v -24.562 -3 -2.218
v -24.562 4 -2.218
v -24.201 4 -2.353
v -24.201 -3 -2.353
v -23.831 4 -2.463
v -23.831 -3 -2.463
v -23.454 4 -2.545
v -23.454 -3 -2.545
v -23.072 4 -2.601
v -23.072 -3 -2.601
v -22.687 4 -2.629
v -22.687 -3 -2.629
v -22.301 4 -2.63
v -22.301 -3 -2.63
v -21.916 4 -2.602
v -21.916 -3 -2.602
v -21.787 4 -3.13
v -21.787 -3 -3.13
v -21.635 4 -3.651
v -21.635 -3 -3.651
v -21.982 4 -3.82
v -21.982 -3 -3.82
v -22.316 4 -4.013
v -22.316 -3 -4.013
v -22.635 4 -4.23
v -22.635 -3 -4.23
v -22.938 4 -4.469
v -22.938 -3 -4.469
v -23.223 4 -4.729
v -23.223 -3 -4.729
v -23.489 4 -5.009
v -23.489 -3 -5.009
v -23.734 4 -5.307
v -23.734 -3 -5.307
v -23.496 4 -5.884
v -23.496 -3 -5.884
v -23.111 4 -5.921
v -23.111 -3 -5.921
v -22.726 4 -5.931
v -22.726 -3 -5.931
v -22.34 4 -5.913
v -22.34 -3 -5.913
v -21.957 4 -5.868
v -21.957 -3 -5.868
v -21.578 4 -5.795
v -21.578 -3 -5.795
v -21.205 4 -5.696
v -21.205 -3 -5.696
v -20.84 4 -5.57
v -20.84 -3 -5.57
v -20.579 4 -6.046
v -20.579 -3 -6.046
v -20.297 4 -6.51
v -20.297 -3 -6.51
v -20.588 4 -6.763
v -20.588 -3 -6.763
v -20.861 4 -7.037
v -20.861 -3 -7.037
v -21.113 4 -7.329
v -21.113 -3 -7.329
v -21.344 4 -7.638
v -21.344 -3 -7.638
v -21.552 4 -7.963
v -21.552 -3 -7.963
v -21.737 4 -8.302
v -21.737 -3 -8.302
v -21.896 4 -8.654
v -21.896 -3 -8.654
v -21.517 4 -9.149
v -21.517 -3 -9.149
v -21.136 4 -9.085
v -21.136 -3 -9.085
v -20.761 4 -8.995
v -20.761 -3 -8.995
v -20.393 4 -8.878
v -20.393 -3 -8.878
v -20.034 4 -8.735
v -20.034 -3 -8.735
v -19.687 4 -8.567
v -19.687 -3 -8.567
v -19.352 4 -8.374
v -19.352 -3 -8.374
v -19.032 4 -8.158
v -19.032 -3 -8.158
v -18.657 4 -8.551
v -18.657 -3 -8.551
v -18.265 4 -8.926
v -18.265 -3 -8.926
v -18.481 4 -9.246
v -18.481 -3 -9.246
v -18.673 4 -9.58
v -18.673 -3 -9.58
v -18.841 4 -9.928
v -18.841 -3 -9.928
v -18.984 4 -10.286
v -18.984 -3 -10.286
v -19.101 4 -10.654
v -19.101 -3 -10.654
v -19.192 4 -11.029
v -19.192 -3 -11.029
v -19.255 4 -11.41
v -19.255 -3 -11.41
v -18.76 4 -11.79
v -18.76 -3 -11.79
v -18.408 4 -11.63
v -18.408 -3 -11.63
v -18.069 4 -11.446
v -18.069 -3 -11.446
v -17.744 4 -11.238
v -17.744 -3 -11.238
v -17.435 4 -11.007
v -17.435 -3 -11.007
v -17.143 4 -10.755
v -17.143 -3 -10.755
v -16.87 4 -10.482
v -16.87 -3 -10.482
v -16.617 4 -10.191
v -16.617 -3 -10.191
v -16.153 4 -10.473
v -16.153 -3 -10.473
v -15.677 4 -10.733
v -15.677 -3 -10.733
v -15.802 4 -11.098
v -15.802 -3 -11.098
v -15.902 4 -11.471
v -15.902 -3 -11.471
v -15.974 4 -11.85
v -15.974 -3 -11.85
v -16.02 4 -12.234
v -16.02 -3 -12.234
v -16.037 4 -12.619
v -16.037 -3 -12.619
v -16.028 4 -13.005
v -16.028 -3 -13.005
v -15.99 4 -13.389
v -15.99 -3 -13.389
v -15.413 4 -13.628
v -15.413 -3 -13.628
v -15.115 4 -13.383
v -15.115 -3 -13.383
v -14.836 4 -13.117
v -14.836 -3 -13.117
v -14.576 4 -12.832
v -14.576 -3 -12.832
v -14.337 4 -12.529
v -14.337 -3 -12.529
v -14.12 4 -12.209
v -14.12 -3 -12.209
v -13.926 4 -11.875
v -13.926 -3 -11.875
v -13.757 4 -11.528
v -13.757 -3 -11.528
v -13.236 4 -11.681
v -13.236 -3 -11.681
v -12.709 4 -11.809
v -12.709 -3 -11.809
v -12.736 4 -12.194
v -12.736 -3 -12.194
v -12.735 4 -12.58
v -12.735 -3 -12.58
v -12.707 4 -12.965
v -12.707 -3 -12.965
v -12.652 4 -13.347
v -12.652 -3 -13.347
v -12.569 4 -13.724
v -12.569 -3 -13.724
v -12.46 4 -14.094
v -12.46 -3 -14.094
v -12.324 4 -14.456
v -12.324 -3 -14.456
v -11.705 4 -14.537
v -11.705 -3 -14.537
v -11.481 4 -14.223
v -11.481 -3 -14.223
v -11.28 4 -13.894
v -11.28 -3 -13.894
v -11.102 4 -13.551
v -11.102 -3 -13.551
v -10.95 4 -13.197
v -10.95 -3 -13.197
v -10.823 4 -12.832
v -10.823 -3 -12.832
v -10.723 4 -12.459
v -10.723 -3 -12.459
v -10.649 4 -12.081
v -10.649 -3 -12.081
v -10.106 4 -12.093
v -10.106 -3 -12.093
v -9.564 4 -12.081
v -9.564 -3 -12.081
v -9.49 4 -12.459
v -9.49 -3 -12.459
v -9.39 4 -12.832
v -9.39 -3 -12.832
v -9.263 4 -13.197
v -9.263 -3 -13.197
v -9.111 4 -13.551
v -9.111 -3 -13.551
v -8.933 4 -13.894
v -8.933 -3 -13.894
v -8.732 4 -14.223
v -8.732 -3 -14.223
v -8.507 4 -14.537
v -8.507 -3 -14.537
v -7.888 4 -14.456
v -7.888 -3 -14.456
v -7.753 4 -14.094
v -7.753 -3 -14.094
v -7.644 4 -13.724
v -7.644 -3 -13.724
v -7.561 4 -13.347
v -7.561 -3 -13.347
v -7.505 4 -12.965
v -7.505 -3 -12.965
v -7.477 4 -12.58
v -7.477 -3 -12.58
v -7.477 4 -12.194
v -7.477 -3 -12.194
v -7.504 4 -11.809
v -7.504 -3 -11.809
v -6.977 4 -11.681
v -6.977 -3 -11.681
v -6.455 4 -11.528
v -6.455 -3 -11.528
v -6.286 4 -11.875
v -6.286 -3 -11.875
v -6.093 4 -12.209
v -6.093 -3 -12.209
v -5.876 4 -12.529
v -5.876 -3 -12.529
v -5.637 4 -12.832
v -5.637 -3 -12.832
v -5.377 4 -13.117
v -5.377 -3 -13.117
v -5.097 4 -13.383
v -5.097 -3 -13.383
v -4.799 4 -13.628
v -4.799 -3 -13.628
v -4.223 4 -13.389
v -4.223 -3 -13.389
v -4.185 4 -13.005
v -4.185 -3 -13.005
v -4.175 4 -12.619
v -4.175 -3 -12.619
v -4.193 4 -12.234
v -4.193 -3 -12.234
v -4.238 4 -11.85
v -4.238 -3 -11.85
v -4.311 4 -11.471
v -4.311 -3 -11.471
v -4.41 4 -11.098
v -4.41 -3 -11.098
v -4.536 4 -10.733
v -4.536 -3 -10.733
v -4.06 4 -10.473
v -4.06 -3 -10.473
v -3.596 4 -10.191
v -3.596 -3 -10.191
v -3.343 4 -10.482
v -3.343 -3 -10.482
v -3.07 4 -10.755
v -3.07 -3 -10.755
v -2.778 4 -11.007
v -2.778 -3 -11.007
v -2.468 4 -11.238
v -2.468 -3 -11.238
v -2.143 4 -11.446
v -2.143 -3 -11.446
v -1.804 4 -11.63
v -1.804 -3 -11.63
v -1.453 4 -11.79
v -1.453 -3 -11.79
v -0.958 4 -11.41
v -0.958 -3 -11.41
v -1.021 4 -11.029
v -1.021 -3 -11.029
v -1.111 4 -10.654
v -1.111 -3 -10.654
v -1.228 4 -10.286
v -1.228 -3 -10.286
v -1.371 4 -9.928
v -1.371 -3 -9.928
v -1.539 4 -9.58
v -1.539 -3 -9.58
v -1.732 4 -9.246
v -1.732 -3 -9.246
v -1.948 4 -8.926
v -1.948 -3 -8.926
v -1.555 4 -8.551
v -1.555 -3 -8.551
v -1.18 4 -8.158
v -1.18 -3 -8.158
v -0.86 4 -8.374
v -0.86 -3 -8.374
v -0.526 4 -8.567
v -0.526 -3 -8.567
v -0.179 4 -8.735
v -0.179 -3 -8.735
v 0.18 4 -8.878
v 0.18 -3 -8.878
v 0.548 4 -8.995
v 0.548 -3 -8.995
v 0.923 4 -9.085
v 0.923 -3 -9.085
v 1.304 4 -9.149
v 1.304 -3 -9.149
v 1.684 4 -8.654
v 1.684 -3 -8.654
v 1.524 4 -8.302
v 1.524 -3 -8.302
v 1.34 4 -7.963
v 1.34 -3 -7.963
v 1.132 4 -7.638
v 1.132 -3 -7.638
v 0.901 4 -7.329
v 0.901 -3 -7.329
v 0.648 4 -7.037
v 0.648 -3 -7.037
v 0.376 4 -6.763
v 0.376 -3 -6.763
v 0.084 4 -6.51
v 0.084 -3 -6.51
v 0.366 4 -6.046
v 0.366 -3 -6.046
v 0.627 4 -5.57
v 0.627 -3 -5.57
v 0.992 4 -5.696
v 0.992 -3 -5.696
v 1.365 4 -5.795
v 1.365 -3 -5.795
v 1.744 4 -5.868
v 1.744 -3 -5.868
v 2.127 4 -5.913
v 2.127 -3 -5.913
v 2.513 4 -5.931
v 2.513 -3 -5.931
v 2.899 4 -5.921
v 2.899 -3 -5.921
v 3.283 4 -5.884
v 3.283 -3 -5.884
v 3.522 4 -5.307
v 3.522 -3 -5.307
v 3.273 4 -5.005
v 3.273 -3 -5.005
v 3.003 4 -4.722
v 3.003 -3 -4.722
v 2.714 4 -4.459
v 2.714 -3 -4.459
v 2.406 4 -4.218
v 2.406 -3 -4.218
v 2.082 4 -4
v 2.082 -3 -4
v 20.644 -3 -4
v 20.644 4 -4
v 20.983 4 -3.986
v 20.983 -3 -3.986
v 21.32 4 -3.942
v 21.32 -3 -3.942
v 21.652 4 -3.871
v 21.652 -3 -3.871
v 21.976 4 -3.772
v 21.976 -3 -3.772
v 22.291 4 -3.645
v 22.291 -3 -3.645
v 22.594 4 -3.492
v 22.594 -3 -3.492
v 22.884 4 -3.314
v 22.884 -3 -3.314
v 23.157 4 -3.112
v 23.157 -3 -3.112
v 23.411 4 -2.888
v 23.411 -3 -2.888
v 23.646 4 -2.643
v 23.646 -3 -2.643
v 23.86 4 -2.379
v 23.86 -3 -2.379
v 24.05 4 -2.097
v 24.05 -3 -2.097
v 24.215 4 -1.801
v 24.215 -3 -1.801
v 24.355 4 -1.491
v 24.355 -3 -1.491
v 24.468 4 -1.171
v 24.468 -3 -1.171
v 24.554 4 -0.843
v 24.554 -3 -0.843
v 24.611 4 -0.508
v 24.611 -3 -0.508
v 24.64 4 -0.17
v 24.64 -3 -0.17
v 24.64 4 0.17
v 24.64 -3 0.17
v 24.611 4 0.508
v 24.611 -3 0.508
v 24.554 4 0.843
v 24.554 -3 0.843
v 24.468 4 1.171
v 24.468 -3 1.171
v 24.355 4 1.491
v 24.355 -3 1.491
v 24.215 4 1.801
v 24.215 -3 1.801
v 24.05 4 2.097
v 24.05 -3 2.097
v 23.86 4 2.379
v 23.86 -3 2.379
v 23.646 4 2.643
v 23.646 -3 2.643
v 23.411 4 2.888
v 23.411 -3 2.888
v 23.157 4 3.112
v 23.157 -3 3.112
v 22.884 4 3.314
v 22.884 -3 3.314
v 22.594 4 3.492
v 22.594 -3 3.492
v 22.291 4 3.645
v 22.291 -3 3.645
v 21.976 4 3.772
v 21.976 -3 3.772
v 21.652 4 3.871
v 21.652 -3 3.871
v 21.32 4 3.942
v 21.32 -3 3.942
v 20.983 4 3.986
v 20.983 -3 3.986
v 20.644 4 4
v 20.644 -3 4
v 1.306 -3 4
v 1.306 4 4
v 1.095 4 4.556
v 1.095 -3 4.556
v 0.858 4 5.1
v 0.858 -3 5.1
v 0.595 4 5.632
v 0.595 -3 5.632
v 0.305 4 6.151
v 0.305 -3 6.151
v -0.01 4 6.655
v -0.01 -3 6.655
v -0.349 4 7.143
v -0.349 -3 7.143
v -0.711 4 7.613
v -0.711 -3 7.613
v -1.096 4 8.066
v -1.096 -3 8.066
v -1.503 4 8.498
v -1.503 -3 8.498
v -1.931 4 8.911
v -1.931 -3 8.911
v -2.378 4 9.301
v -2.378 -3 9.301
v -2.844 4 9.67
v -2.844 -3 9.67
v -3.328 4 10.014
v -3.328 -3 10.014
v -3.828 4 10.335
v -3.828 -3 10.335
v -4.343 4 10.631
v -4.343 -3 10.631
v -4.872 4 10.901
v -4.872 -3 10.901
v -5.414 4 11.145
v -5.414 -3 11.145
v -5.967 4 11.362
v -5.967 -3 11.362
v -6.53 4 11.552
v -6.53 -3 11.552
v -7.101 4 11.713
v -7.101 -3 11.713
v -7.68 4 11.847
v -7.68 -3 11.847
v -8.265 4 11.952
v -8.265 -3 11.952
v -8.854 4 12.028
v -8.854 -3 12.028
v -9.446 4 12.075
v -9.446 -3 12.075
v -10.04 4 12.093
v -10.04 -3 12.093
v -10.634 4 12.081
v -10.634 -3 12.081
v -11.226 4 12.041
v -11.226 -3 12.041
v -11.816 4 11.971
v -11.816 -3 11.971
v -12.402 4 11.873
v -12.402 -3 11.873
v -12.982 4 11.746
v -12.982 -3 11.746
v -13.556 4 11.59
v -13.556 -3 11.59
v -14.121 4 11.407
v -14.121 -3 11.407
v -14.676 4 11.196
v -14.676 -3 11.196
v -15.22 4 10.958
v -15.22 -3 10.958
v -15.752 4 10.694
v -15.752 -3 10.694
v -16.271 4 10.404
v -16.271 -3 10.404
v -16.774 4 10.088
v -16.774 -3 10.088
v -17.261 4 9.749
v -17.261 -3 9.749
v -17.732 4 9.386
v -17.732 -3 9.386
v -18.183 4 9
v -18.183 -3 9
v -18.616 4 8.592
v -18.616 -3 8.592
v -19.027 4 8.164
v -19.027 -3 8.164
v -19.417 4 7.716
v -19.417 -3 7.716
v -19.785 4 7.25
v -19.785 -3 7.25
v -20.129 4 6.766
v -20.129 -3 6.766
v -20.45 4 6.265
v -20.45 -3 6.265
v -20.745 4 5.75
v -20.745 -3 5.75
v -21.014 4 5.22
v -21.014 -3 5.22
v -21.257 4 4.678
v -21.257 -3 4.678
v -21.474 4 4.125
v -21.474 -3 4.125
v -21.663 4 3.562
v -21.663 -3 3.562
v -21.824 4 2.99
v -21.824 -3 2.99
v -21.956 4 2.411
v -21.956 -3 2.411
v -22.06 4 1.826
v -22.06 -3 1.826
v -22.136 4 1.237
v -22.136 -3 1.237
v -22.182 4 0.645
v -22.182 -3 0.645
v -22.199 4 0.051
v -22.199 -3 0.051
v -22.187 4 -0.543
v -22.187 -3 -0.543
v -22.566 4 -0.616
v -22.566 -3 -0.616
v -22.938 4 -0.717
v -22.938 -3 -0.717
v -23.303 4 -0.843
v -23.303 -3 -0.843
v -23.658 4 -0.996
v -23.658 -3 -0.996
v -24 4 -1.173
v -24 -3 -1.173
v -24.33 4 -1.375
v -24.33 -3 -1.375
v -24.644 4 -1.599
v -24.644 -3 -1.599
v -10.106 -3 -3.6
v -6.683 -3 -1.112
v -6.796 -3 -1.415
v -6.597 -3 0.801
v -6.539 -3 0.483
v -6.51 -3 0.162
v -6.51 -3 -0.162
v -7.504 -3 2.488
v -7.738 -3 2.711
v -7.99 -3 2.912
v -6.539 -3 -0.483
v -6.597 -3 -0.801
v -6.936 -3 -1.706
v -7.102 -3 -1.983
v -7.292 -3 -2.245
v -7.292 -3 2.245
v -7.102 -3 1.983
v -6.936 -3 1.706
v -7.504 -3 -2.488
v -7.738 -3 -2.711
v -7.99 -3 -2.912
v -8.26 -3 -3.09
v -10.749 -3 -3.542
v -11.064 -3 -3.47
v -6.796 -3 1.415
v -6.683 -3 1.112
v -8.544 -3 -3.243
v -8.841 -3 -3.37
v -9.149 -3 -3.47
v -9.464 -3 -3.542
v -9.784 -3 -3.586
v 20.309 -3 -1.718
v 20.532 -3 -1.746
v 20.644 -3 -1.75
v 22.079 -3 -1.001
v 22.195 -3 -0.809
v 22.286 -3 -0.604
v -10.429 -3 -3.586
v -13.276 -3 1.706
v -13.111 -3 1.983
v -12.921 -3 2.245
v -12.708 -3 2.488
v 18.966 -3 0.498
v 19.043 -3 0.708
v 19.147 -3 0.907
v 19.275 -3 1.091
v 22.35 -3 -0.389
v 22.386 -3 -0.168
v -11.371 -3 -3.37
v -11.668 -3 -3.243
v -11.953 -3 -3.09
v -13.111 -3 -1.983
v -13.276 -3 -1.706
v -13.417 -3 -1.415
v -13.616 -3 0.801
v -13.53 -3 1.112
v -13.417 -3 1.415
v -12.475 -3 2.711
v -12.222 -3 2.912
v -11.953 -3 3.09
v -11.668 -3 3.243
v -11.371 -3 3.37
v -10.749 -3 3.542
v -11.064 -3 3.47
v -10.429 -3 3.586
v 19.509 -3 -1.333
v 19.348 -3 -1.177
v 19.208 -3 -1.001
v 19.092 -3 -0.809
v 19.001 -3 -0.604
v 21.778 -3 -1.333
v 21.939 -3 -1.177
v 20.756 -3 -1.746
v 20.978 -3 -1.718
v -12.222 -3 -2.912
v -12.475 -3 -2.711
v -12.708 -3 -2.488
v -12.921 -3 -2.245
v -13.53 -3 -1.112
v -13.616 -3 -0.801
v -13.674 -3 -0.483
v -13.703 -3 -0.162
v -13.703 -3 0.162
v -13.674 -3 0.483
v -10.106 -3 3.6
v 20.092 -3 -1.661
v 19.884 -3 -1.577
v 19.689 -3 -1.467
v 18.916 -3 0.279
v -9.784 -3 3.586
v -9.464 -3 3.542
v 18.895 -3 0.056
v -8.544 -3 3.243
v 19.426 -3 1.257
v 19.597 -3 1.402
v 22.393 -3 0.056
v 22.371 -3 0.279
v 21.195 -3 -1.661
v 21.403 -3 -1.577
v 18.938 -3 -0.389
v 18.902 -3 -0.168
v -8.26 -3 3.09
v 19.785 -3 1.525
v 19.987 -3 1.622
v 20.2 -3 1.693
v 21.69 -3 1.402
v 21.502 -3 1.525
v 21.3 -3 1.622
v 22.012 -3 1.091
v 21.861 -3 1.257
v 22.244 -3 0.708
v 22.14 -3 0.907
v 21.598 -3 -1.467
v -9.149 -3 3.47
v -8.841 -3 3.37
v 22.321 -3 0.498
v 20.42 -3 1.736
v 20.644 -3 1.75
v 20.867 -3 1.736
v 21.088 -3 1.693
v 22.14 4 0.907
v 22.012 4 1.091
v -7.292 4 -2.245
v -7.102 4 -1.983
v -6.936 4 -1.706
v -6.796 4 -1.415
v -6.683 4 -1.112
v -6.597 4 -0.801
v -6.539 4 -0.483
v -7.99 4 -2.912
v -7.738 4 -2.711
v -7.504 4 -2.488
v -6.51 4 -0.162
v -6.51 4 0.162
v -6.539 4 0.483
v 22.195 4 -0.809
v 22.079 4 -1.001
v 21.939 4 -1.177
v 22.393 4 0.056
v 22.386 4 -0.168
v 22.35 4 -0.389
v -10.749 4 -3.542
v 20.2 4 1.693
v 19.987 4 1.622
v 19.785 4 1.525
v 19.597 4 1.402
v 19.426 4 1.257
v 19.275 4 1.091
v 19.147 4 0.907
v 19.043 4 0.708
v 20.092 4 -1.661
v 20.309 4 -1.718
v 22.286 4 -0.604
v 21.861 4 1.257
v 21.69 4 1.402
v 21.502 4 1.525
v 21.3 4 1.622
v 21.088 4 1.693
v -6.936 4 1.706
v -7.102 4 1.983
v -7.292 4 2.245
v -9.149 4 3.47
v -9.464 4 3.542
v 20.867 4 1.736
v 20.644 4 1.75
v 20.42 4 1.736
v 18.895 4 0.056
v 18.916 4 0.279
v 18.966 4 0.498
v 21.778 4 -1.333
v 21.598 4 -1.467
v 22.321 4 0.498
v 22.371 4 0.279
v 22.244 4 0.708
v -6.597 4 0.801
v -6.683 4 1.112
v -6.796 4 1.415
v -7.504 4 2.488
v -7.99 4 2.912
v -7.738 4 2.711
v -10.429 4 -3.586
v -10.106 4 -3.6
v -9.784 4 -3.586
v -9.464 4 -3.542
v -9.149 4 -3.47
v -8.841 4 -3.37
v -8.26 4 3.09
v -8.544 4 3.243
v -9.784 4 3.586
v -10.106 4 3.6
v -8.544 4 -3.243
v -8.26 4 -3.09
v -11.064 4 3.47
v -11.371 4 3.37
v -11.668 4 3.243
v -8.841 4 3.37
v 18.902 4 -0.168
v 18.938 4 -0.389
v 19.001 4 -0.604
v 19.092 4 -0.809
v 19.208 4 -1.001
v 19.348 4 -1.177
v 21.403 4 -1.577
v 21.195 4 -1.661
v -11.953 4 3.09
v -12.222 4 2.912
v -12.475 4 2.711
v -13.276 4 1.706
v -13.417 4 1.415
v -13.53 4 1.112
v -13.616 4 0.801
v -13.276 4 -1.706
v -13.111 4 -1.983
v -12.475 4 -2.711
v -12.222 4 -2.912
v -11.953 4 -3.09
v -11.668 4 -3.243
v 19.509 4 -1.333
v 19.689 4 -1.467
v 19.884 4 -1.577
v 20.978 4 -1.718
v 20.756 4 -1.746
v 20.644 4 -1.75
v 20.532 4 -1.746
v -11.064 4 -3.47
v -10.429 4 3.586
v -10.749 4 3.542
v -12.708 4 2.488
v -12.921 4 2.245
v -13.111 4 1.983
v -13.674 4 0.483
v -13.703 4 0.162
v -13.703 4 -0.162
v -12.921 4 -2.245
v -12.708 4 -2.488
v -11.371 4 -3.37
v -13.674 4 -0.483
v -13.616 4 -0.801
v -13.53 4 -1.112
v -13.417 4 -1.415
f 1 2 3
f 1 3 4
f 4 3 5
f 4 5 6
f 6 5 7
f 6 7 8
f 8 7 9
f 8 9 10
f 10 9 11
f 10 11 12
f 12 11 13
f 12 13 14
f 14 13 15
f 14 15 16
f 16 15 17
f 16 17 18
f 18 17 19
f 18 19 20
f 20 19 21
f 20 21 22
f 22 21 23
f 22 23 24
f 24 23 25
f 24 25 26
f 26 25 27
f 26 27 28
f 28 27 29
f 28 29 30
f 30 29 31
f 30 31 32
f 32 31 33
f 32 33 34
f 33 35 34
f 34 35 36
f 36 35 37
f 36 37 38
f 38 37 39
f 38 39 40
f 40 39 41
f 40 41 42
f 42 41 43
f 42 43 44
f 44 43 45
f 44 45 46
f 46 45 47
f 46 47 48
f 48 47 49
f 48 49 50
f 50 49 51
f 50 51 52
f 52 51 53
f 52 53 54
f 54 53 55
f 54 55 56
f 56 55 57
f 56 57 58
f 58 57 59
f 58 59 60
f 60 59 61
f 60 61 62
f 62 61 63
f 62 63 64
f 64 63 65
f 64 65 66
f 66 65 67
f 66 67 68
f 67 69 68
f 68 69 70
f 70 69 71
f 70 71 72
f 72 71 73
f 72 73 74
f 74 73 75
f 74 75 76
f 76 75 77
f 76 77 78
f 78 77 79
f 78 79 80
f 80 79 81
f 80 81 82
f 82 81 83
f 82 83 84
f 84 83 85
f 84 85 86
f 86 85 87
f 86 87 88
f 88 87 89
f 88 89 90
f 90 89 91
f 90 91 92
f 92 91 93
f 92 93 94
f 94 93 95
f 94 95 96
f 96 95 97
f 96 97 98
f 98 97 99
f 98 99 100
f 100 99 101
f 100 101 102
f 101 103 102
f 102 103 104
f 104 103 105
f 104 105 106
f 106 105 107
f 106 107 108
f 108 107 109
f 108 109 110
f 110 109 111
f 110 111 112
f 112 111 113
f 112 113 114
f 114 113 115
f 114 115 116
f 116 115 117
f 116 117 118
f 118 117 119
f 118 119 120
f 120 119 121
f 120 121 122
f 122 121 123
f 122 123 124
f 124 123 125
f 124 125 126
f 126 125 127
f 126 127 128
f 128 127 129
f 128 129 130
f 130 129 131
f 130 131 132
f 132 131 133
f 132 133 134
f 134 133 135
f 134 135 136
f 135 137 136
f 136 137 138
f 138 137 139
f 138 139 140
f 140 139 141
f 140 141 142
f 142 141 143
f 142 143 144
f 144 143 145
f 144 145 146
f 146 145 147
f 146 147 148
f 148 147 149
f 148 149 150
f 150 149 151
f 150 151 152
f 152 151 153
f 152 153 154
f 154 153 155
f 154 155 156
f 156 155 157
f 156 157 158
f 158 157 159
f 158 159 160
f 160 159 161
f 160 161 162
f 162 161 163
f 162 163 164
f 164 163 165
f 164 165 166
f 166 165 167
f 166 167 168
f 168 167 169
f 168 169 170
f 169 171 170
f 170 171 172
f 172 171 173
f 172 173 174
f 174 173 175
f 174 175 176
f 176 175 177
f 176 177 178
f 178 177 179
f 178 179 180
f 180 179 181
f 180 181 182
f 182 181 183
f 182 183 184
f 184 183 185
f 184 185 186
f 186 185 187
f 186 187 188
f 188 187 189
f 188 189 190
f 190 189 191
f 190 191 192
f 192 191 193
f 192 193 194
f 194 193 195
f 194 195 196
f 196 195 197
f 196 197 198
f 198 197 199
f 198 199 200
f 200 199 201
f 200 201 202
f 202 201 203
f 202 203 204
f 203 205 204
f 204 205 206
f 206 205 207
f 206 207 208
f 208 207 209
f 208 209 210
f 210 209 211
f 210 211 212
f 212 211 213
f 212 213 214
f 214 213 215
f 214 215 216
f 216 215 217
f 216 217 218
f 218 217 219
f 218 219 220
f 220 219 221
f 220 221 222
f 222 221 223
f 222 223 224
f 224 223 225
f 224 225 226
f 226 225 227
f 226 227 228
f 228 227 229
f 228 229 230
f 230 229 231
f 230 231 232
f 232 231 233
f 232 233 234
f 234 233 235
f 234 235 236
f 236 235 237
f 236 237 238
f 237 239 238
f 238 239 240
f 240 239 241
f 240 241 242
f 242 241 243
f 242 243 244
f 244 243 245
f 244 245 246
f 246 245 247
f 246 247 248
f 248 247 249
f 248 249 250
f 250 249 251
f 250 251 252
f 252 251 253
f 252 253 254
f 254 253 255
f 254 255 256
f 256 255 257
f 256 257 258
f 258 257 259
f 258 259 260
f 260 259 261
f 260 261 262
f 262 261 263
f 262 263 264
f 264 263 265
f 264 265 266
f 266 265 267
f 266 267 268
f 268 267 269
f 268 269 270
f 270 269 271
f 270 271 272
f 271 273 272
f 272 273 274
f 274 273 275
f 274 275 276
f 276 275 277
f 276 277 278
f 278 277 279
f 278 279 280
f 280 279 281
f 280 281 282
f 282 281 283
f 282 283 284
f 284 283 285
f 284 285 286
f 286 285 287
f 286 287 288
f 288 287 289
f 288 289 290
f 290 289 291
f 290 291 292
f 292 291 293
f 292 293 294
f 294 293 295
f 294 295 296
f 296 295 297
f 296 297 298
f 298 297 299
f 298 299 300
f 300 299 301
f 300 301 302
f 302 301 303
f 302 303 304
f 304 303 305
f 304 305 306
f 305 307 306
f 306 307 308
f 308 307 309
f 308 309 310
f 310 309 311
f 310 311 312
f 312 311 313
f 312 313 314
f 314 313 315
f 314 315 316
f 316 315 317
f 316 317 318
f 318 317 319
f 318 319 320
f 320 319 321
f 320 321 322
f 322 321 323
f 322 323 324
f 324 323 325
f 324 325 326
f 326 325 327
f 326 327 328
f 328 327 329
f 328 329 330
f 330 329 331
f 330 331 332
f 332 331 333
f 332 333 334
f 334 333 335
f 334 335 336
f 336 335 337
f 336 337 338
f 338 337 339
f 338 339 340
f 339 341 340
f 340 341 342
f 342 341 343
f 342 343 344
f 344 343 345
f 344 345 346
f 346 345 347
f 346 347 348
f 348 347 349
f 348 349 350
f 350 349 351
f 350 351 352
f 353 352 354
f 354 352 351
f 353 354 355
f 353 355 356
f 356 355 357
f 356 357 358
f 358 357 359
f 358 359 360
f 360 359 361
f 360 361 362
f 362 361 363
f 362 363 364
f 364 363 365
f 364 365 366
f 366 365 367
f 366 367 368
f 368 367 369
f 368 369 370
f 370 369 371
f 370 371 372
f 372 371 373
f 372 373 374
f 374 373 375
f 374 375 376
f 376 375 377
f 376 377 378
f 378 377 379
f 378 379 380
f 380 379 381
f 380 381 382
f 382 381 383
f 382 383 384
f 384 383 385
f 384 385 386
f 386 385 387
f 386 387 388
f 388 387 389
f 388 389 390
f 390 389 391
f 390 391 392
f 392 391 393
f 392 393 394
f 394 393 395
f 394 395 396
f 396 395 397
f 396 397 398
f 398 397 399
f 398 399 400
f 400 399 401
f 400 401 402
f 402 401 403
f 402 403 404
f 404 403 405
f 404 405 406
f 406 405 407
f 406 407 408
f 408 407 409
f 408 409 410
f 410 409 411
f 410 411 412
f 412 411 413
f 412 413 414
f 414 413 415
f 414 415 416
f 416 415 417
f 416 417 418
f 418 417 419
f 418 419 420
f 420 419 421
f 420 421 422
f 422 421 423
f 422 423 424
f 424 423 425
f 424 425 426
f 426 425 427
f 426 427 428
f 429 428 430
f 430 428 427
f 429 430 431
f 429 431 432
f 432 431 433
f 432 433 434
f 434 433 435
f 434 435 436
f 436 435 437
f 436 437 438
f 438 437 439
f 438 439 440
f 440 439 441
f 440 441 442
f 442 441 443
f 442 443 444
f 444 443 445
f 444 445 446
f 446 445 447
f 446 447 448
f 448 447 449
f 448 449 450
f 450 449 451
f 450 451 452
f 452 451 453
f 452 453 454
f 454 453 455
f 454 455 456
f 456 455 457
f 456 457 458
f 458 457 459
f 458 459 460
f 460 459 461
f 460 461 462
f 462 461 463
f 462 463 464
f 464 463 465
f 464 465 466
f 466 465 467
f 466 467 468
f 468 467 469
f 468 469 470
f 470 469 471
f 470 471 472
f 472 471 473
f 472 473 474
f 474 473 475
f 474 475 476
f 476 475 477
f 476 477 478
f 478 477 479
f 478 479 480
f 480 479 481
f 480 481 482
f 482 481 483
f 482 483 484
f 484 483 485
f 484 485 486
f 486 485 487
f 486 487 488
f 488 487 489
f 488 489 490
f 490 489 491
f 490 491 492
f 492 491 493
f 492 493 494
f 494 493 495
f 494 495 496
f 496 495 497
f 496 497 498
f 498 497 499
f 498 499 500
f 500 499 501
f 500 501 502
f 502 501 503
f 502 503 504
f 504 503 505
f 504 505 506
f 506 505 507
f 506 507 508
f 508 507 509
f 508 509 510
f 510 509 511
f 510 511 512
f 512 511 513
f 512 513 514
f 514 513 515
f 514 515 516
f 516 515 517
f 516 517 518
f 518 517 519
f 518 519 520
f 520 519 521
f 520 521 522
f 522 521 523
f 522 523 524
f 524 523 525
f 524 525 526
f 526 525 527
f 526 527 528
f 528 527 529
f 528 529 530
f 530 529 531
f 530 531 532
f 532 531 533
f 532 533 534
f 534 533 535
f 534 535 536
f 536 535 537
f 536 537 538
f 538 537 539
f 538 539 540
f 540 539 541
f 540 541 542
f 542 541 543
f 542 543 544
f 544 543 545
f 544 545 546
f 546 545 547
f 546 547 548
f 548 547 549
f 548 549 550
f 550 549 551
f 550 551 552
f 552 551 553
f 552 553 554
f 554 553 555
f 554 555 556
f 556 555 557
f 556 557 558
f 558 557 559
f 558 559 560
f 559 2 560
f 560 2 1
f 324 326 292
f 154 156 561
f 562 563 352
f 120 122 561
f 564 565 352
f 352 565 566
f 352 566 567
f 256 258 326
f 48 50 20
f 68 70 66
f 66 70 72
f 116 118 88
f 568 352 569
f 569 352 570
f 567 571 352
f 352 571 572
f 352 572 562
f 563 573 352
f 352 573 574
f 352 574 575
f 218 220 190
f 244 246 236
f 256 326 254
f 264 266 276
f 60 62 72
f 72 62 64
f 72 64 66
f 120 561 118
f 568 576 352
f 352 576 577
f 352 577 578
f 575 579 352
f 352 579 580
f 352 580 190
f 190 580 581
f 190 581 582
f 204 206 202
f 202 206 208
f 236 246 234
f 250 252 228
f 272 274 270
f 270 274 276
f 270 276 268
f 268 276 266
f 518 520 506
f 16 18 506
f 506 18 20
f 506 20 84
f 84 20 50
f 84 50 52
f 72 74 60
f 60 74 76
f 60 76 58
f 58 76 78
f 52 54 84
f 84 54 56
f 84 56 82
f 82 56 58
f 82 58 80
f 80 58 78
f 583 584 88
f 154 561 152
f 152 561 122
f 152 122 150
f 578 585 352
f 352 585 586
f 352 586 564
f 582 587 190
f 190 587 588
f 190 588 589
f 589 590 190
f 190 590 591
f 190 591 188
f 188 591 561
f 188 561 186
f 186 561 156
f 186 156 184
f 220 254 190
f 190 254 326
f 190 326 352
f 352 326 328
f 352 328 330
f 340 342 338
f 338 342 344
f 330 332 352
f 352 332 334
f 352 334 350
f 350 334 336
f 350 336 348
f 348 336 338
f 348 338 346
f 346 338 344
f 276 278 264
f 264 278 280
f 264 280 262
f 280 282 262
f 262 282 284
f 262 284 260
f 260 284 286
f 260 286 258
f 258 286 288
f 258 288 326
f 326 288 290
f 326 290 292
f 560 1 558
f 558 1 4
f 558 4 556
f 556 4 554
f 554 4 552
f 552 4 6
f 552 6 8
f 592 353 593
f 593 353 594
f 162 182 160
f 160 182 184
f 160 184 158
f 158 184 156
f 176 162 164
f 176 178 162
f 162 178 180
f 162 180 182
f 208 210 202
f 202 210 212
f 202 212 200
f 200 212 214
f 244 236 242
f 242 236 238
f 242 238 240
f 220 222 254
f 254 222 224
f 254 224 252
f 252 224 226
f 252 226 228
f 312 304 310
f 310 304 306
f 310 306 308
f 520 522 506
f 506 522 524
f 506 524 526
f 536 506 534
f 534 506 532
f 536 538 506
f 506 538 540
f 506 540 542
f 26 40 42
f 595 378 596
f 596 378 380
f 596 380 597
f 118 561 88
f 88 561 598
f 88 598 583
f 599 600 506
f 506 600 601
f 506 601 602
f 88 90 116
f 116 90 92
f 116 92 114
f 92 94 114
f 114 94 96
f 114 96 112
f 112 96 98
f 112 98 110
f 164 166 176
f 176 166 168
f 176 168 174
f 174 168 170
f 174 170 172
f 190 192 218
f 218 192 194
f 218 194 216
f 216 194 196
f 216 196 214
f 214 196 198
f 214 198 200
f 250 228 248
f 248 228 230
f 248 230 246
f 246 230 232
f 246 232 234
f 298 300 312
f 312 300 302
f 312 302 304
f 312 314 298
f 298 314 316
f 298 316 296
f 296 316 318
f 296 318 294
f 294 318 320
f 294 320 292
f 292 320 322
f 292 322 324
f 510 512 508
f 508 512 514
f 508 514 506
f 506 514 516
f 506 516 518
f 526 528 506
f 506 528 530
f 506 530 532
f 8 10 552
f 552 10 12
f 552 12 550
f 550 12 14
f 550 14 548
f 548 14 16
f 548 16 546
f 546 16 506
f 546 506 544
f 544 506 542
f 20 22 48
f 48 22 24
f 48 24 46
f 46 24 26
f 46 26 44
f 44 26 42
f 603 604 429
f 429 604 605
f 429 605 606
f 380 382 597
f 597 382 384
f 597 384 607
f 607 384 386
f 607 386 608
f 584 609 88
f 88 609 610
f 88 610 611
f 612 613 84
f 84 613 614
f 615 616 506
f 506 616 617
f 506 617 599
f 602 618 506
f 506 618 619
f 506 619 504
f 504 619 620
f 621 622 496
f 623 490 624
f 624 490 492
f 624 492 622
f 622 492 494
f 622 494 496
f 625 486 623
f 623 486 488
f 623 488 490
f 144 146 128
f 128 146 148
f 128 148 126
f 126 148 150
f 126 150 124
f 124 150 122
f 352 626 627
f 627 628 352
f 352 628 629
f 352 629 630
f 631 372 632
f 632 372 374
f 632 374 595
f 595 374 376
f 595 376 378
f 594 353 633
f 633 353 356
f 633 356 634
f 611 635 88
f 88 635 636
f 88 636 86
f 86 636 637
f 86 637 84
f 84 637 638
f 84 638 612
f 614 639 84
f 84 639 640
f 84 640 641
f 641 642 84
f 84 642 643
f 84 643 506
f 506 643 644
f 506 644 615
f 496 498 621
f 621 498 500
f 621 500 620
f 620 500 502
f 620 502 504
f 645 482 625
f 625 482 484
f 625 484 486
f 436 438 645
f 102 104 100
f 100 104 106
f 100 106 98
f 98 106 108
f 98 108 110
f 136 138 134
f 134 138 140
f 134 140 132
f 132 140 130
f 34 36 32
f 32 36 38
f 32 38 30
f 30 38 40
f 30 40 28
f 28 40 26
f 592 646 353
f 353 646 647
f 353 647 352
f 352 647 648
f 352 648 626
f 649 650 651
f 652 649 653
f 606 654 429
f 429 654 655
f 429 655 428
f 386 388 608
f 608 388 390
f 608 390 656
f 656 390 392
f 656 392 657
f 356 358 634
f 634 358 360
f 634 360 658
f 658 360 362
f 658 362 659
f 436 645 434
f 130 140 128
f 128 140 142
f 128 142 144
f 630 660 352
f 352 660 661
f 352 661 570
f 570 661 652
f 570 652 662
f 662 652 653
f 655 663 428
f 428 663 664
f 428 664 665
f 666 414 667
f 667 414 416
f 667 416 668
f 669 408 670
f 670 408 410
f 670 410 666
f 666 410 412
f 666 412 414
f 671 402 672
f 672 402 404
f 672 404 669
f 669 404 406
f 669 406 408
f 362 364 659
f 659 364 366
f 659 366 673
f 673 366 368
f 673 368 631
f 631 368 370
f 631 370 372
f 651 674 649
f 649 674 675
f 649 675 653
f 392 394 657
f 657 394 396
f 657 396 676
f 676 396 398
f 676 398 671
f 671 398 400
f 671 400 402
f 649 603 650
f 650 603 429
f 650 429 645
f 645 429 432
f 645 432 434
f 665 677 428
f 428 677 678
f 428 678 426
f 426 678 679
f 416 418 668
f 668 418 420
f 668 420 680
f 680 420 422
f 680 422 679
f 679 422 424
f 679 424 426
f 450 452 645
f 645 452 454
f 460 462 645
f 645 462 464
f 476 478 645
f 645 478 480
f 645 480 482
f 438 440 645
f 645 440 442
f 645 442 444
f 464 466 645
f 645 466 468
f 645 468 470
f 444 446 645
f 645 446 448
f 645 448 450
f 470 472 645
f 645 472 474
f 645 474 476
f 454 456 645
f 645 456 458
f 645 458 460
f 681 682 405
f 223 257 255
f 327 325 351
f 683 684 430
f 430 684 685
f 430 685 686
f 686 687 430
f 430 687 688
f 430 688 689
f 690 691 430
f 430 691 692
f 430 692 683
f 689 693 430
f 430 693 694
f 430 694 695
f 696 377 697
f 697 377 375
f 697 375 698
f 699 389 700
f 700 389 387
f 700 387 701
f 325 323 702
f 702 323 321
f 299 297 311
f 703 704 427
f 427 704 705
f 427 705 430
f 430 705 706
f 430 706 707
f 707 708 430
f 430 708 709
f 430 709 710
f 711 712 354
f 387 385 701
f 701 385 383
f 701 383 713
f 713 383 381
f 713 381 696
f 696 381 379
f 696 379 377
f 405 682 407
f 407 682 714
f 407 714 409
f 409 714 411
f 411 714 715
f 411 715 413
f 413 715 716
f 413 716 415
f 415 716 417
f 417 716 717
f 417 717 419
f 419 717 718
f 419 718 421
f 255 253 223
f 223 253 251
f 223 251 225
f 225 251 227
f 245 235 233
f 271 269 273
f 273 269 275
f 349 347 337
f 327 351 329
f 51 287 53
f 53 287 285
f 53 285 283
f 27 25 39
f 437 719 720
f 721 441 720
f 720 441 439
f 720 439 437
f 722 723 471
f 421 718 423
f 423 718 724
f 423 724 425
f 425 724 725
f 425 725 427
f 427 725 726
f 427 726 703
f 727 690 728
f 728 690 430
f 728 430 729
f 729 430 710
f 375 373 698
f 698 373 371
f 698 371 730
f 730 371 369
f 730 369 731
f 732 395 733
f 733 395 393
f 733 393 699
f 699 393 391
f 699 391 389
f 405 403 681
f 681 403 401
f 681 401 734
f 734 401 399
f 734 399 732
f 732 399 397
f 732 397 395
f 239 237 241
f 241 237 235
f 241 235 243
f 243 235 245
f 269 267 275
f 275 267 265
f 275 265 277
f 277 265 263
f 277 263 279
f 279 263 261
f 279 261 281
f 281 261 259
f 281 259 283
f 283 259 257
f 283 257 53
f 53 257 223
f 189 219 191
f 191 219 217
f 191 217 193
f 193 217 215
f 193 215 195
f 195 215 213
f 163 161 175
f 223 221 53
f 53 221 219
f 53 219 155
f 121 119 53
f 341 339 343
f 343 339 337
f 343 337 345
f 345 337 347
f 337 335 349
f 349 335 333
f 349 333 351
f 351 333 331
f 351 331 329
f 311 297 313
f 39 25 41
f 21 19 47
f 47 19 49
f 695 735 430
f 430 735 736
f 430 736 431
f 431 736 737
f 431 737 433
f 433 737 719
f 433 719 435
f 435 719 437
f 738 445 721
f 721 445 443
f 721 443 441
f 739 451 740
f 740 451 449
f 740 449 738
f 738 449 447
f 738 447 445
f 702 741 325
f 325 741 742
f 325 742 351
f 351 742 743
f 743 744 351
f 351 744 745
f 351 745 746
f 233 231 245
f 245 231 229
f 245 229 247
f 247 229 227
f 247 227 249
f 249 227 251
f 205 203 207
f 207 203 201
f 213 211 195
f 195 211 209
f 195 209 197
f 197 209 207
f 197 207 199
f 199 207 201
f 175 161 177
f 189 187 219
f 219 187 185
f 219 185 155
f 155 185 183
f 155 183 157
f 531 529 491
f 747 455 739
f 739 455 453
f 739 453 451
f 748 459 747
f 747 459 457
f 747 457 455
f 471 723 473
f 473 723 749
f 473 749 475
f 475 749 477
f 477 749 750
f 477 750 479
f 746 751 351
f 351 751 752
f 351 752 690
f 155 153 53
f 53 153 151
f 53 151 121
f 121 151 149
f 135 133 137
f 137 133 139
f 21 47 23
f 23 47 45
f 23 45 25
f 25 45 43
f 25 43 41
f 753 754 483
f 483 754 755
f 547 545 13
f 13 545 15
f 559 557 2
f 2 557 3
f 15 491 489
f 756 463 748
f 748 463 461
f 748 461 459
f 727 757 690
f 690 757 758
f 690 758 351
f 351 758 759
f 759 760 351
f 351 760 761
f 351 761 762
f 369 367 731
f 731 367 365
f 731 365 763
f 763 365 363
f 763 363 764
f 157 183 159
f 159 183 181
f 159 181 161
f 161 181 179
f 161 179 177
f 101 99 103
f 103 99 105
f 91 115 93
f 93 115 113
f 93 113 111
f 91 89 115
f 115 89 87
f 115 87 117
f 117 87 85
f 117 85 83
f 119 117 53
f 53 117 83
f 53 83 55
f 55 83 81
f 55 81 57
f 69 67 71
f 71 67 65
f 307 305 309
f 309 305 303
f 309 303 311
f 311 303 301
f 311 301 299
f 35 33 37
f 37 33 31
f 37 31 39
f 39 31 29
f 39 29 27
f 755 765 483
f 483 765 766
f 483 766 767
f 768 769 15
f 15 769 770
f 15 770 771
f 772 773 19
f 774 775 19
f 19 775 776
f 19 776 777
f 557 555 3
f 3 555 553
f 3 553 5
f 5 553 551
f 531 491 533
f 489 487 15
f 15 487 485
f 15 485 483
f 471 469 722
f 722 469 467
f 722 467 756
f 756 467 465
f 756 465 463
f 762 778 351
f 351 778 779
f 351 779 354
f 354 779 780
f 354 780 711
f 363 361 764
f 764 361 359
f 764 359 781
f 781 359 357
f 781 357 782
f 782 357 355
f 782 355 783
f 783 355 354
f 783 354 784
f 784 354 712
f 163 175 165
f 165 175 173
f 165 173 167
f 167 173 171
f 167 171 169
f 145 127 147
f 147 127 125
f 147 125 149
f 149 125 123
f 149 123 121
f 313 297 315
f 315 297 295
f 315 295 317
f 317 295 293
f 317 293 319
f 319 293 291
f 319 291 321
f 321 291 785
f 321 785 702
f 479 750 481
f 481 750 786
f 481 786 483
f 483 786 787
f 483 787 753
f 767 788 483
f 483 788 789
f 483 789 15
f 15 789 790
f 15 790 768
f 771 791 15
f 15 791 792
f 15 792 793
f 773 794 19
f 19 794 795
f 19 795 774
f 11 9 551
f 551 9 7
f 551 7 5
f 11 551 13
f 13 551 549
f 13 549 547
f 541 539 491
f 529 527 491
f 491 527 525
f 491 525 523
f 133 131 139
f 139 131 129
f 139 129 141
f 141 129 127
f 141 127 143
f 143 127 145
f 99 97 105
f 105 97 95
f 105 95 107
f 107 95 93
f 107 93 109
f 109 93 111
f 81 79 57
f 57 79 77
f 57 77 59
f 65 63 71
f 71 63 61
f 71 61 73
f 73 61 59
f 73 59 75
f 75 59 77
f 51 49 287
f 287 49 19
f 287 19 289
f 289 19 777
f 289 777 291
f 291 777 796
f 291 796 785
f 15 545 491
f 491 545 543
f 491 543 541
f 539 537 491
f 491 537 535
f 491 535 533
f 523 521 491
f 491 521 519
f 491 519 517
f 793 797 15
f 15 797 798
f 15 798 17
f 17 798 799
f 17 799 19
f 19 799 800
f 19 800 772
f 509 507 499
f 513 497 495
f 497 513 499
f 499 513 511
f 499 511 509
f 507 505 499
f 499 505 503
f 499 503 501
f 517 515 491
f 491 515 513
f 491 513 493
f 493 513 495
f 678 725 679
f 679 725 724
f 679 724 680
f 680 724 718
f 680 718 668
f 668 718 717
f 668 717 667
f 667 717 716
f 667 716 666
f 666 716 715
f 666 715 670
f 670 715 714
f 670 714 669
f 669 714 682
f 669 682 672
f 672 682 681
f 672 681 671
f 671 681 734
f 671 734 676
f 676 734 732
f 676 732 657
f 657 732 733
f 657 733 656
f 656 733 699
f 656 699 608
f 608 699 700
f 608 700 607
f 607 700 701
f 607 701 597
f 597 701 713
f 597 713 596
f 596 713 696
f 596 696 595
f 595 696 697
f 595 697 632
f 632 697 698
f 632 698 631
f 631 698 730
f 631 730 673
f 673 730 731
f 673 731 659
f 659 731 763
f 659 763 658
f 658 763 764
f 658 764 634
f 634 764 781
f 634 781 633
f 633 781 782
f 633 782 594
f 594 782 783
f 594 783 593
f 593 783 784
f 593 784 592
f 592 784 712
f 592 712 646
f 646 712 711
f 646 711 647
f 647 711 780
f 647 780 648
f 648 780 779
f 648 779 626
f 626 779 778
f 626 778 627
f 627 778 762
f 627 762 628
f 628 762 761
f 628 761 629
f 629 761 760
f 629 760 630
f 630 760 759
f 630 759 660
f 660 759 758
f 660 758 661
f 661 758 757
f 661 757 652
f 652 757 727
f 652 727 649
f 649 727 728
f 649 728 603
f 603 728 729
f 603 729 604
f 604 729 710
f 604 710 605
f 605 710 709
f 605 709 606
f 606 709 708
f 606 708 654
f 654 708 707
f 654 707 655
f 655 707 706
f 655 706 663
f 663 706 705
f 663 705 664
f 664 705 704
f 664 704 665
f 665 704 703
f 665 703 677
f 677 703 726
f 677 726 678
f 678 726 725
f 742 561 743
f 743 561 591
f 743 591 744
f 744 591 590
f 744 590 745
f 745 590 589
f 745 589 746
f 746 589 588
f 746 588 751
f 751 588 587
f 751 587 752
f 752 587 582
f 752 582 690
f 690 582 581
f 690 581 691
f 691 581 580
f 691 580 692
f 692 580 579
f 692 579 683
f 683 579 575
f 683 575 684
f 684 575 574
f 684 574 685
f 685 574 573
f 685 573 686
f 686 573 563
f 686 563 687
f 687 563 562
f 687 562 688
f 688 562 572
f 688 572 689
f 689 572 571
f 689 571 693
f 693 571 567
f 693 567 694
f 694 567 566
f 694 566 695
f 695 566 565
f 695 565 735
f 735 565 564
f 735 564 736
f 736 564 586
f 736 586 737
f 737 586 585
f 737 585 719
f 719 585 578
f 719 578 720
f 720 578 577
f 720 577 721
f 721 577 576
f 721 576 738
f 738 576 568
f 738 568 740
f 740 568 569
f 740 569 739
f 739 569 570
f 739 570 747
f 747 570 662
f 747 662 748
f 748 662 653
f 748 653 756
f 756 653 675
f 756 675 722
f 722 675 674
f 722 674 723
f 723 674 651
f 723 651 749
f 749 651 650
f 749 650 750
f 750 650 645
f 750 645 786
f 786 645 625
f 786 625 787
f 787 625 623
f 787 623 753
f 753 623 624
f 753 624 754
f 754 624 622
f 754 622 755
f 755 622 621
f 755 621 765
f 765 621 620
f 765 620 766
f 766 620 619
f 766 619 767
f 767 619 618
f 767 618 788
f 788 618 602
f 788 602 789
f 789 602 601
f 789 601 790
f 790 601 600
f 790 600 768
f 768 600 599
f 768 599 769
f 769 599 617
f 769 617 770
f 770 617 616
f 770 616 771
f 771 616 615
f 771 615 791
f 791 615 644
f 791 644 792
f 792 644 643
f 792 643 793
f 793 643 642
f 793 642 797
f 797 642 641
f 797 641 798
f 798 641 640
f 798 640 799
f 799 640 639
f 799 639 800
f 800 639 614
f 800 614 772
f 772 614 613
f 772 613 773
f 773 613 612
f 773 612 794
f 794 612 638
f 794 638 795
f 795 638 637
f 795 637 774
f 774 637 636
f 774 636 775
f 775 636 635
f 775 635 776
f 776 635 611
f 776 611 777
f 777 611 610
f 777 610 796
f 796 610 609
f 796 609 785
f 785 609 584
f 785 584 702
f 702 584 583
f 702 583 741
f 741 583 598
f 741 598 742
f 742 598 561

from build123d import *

# Parameters (mm, degrees)
SKETCH1_R           = 1.75
BOSS_EXTRUDE1_DEPTH = 7
SKETCH_1_R          = 3.6
CUT_EXTRUDE_1_DEPTH = 30.45578681


with BuildPart() as part:
    # Sketch1 → Boss-Extrude1 (new body)
    with BuildSketch(Plane(origin=(0, 4, 0), x_dir=(1, 0, 0), z_dir=(0, 1, 0))):
        with BuildLine():
            Line((1.305695063, -4), (20.643657446, -4))
            ThreePointArc((20.643657446, -4), (24.643657446, 0), (20.643657446, 4))
            Line((20.643657446, 4), (2.081641936, 4))
            ThreePointArc((2.081641936, 4), (2.861028333, 4.588201733), (3.521749436, 5.30713988))
            ThreePointArc((3.521749436, 5.30713988), (3.405395609, 5.596745198), (3.282888305, 5.883801663))
            ThreePointArc((3.282888305, 5.883801663), (1.93527598, 5.894040025), (0.627094961, 5.57027124))
            ThreePointArc((0.627094961, 5.57027124), (0.366286148, 6.046375), (0.084372603, 6.510293938))
            ThreePointArc((0.084372603, 6.510293938), (1.018855105, 7.48132754), (1.683794586, 8.65351323))
            ThreePointArc((1.683794586, 8.65351323), (1.496450048, 8.903135899), (1.303821399, 9.148703928))
            ThreePointArc((1.303821399, 9.148703928), (-0.000522033, 8.809805691), (-1.180330337, 8.158486898))
            ThreePointArc((-1.180330337, 8.158486898), (-1.555477026, 8.550865528), (-1.947855656, 8.926012217))
            ThreePointArc((-1.947855656, 8.926012217), (-1.296536862, 10.105820521), (-0.957638625, 11.410163953))
            ThreePointArc((-0.957638625, 11.410163953), (-1.203206655, 11.602792602), (-1.452829324, 11.79013714))
            ThreePointArc((-1.452829324, 11.79013714), (-2.625015014, 11.125197659), (-3.596048616, 10.190715157))
            ThreePointArc((-3.596048616, 10.190715157), (-4.059967554, 10.472628702), (-4.536071314, 10.733437515))
            ThreePointArc((-4.536071314, 10.733437515), (-4.212302529, 12.041618533), (-4.222540891, 13.389230859))
            ThreePointArc((-4.222540891, 13.389230859), (-4.509597355, 13.511738163), (-4.799202674, 13.62809199))
            ThreePointArc((-4.799202674, 13.62809199), (-5.759348103, 12.682425791), (-6.455432668, 11.528463019))
            ThreePointArc((-6.455432668, 11.528463019), (-6.976508546, 11.680699536), (-7.503891752, 11.809396783))
            ThreePointArc((-7.503891752, 11.809396783), (-7.529737283, 13.156800143), (-7.888414517, 14.455843809))
            ThreePointArc((-7.888414517, 14.455843809), (-8.197396993, 14.499881098), (-8.507248835, 14.537314892))
            ThreePointArc((-8.507248835, 14.537314892), (-9.18992168, 13.375367565), (-9.563620196, 12.080565177))
            ThreePointArc((-9.563620196, 12.080565177), (-10.106342554, 12.09275), (-10.649064912, 12.080565177))
            ThreePointArc((-10.649064912, 12.080565177), (-11.022763428, 13.375367565), (-11.705436272, 14.537314892))
            ThreePointArc((-11.705436272, 14.537314892), (-12.015288115, 14.499881098), (-12.324270591, 14.455843809))
            ThreePointArc((-12.324270591, 14.455843809), (-12.682947825, 13.156800143), (-12.708793355, 11.809396783))
            ThreePointArc((-12.708793355, 11.809396783), (-13.236176561, 11.680699536), (-13.757252439, 11.528463019))
            ThreePointArc((-13.757252439, 11.528463019), (-14.453337005, 12.682425791), (-15.413482434, 13.62809199))
            ThreePointArc((-15.413482434, 13.62809199), (-15.703087752, 13.511738163), (-15.990144217, 13.389230859))
            ThreePointArc((-15.990144217, 13.389230859), (-16.000382579, 12.041618533), (-15.676613793, 10.733437515))
            ThreePointArc((-15.676613793, 10.733437515), (-16.152717554, 10.472628702), (-16.616636492, 10.190715157))
            ThreePointArc((-16.616636492, 10.190715157), (-17.587670094, 11.125197659), (-18.759855783, 11.79013714))
            ThreePointArc((-18.759855783, 11.79013714), (-19.009478453, 11.602792602), (-19.255046482, 11.410163953))
            ThreePointArc((-19.255046482, 11.410163953), (-18.916148245, 10.105820521), (-18.264829452, 8.926012217))
            ThreePointArc((-18.264829452, 8.926012217), (-18.657208082, 8.550865528), (-19.032354771, 8.158486898))
            ThreePointArc((-19.032354771, 8.158486898), (-20.212163074, 8.809805691), (-21.516506507, 9.148703928))
            ThreePointArc((-21.516506507, 9.148703928), (-21.709135156, 8.903135899), (-21.896479694, 8.65351323))
            ThreePointArc((-21.896479694, 8.65351323), (-21.231540213, 7.48132754), (-20.297057711, 6.510293938))
            ThreePointArc((-20.297057711, 6.510293938), (-20.578971255, 6.046375), (-20.839780068, 5.57027124))
            ThreePointArc((-20.839780068, 5.57027124), (-22.147961087, 5.894040025), (-23.495573413, 5.883801663))
            ThreePointArc((-23.495573413, 5.883801663), (-23.618080717, 5.596745198), (-23.734434544, 5.30713988))
            ThreePointArc((-23.734434544, 5.30713988), (-22.788768345, 4.346994451), (-21.634805572, 3.650909885))
            ThreePointArc((-21.634805572, 3.650909885), (-21.78704209, 3.129834008), (-21.915739337, 2.602450802))
            ThreePointArc((-21.915739337, 2.602450802), (-23.263142697, 2.576605271), (-24.562186363, 2.217928037))
            ThreePointArc((-24.562186363, 2.217928037), (-24.606223651, 1.908945561), (-24.643657446, 1.599093719))
            ThreePointArc((-24.643657446, 1.599093719), (-23.481710119, 0.916420874), (-22.186907731, 0.542722358))
            ThreePointArc((-22.186907731, 0.542722358), (-12.402167869, -11.872817218), (1.305695063, -4))
        make_face()
        with Locations(Location((20.643657446, 0, 0), (0, 0, 90))):
            Circle(SKETCH1_R, mode=Mode.SUBTRACT)
    extrude(amount=-BOSS_EXTRUDE1_DEPTH)

    # 草图1 → 切除-拉伸1 (cut, through all)
    with BuildSketch(Plane.XZ.offset(3)):
        with Locations(Location((-10.106342554, 0, 0), (0, 0, 270))):
            Circle(SKETCH_1_R)
    extrude(amount=-CUT_EXTRUDE_1_DEPTH, mode=Mode.SUBTRACT)


solid = part.part
